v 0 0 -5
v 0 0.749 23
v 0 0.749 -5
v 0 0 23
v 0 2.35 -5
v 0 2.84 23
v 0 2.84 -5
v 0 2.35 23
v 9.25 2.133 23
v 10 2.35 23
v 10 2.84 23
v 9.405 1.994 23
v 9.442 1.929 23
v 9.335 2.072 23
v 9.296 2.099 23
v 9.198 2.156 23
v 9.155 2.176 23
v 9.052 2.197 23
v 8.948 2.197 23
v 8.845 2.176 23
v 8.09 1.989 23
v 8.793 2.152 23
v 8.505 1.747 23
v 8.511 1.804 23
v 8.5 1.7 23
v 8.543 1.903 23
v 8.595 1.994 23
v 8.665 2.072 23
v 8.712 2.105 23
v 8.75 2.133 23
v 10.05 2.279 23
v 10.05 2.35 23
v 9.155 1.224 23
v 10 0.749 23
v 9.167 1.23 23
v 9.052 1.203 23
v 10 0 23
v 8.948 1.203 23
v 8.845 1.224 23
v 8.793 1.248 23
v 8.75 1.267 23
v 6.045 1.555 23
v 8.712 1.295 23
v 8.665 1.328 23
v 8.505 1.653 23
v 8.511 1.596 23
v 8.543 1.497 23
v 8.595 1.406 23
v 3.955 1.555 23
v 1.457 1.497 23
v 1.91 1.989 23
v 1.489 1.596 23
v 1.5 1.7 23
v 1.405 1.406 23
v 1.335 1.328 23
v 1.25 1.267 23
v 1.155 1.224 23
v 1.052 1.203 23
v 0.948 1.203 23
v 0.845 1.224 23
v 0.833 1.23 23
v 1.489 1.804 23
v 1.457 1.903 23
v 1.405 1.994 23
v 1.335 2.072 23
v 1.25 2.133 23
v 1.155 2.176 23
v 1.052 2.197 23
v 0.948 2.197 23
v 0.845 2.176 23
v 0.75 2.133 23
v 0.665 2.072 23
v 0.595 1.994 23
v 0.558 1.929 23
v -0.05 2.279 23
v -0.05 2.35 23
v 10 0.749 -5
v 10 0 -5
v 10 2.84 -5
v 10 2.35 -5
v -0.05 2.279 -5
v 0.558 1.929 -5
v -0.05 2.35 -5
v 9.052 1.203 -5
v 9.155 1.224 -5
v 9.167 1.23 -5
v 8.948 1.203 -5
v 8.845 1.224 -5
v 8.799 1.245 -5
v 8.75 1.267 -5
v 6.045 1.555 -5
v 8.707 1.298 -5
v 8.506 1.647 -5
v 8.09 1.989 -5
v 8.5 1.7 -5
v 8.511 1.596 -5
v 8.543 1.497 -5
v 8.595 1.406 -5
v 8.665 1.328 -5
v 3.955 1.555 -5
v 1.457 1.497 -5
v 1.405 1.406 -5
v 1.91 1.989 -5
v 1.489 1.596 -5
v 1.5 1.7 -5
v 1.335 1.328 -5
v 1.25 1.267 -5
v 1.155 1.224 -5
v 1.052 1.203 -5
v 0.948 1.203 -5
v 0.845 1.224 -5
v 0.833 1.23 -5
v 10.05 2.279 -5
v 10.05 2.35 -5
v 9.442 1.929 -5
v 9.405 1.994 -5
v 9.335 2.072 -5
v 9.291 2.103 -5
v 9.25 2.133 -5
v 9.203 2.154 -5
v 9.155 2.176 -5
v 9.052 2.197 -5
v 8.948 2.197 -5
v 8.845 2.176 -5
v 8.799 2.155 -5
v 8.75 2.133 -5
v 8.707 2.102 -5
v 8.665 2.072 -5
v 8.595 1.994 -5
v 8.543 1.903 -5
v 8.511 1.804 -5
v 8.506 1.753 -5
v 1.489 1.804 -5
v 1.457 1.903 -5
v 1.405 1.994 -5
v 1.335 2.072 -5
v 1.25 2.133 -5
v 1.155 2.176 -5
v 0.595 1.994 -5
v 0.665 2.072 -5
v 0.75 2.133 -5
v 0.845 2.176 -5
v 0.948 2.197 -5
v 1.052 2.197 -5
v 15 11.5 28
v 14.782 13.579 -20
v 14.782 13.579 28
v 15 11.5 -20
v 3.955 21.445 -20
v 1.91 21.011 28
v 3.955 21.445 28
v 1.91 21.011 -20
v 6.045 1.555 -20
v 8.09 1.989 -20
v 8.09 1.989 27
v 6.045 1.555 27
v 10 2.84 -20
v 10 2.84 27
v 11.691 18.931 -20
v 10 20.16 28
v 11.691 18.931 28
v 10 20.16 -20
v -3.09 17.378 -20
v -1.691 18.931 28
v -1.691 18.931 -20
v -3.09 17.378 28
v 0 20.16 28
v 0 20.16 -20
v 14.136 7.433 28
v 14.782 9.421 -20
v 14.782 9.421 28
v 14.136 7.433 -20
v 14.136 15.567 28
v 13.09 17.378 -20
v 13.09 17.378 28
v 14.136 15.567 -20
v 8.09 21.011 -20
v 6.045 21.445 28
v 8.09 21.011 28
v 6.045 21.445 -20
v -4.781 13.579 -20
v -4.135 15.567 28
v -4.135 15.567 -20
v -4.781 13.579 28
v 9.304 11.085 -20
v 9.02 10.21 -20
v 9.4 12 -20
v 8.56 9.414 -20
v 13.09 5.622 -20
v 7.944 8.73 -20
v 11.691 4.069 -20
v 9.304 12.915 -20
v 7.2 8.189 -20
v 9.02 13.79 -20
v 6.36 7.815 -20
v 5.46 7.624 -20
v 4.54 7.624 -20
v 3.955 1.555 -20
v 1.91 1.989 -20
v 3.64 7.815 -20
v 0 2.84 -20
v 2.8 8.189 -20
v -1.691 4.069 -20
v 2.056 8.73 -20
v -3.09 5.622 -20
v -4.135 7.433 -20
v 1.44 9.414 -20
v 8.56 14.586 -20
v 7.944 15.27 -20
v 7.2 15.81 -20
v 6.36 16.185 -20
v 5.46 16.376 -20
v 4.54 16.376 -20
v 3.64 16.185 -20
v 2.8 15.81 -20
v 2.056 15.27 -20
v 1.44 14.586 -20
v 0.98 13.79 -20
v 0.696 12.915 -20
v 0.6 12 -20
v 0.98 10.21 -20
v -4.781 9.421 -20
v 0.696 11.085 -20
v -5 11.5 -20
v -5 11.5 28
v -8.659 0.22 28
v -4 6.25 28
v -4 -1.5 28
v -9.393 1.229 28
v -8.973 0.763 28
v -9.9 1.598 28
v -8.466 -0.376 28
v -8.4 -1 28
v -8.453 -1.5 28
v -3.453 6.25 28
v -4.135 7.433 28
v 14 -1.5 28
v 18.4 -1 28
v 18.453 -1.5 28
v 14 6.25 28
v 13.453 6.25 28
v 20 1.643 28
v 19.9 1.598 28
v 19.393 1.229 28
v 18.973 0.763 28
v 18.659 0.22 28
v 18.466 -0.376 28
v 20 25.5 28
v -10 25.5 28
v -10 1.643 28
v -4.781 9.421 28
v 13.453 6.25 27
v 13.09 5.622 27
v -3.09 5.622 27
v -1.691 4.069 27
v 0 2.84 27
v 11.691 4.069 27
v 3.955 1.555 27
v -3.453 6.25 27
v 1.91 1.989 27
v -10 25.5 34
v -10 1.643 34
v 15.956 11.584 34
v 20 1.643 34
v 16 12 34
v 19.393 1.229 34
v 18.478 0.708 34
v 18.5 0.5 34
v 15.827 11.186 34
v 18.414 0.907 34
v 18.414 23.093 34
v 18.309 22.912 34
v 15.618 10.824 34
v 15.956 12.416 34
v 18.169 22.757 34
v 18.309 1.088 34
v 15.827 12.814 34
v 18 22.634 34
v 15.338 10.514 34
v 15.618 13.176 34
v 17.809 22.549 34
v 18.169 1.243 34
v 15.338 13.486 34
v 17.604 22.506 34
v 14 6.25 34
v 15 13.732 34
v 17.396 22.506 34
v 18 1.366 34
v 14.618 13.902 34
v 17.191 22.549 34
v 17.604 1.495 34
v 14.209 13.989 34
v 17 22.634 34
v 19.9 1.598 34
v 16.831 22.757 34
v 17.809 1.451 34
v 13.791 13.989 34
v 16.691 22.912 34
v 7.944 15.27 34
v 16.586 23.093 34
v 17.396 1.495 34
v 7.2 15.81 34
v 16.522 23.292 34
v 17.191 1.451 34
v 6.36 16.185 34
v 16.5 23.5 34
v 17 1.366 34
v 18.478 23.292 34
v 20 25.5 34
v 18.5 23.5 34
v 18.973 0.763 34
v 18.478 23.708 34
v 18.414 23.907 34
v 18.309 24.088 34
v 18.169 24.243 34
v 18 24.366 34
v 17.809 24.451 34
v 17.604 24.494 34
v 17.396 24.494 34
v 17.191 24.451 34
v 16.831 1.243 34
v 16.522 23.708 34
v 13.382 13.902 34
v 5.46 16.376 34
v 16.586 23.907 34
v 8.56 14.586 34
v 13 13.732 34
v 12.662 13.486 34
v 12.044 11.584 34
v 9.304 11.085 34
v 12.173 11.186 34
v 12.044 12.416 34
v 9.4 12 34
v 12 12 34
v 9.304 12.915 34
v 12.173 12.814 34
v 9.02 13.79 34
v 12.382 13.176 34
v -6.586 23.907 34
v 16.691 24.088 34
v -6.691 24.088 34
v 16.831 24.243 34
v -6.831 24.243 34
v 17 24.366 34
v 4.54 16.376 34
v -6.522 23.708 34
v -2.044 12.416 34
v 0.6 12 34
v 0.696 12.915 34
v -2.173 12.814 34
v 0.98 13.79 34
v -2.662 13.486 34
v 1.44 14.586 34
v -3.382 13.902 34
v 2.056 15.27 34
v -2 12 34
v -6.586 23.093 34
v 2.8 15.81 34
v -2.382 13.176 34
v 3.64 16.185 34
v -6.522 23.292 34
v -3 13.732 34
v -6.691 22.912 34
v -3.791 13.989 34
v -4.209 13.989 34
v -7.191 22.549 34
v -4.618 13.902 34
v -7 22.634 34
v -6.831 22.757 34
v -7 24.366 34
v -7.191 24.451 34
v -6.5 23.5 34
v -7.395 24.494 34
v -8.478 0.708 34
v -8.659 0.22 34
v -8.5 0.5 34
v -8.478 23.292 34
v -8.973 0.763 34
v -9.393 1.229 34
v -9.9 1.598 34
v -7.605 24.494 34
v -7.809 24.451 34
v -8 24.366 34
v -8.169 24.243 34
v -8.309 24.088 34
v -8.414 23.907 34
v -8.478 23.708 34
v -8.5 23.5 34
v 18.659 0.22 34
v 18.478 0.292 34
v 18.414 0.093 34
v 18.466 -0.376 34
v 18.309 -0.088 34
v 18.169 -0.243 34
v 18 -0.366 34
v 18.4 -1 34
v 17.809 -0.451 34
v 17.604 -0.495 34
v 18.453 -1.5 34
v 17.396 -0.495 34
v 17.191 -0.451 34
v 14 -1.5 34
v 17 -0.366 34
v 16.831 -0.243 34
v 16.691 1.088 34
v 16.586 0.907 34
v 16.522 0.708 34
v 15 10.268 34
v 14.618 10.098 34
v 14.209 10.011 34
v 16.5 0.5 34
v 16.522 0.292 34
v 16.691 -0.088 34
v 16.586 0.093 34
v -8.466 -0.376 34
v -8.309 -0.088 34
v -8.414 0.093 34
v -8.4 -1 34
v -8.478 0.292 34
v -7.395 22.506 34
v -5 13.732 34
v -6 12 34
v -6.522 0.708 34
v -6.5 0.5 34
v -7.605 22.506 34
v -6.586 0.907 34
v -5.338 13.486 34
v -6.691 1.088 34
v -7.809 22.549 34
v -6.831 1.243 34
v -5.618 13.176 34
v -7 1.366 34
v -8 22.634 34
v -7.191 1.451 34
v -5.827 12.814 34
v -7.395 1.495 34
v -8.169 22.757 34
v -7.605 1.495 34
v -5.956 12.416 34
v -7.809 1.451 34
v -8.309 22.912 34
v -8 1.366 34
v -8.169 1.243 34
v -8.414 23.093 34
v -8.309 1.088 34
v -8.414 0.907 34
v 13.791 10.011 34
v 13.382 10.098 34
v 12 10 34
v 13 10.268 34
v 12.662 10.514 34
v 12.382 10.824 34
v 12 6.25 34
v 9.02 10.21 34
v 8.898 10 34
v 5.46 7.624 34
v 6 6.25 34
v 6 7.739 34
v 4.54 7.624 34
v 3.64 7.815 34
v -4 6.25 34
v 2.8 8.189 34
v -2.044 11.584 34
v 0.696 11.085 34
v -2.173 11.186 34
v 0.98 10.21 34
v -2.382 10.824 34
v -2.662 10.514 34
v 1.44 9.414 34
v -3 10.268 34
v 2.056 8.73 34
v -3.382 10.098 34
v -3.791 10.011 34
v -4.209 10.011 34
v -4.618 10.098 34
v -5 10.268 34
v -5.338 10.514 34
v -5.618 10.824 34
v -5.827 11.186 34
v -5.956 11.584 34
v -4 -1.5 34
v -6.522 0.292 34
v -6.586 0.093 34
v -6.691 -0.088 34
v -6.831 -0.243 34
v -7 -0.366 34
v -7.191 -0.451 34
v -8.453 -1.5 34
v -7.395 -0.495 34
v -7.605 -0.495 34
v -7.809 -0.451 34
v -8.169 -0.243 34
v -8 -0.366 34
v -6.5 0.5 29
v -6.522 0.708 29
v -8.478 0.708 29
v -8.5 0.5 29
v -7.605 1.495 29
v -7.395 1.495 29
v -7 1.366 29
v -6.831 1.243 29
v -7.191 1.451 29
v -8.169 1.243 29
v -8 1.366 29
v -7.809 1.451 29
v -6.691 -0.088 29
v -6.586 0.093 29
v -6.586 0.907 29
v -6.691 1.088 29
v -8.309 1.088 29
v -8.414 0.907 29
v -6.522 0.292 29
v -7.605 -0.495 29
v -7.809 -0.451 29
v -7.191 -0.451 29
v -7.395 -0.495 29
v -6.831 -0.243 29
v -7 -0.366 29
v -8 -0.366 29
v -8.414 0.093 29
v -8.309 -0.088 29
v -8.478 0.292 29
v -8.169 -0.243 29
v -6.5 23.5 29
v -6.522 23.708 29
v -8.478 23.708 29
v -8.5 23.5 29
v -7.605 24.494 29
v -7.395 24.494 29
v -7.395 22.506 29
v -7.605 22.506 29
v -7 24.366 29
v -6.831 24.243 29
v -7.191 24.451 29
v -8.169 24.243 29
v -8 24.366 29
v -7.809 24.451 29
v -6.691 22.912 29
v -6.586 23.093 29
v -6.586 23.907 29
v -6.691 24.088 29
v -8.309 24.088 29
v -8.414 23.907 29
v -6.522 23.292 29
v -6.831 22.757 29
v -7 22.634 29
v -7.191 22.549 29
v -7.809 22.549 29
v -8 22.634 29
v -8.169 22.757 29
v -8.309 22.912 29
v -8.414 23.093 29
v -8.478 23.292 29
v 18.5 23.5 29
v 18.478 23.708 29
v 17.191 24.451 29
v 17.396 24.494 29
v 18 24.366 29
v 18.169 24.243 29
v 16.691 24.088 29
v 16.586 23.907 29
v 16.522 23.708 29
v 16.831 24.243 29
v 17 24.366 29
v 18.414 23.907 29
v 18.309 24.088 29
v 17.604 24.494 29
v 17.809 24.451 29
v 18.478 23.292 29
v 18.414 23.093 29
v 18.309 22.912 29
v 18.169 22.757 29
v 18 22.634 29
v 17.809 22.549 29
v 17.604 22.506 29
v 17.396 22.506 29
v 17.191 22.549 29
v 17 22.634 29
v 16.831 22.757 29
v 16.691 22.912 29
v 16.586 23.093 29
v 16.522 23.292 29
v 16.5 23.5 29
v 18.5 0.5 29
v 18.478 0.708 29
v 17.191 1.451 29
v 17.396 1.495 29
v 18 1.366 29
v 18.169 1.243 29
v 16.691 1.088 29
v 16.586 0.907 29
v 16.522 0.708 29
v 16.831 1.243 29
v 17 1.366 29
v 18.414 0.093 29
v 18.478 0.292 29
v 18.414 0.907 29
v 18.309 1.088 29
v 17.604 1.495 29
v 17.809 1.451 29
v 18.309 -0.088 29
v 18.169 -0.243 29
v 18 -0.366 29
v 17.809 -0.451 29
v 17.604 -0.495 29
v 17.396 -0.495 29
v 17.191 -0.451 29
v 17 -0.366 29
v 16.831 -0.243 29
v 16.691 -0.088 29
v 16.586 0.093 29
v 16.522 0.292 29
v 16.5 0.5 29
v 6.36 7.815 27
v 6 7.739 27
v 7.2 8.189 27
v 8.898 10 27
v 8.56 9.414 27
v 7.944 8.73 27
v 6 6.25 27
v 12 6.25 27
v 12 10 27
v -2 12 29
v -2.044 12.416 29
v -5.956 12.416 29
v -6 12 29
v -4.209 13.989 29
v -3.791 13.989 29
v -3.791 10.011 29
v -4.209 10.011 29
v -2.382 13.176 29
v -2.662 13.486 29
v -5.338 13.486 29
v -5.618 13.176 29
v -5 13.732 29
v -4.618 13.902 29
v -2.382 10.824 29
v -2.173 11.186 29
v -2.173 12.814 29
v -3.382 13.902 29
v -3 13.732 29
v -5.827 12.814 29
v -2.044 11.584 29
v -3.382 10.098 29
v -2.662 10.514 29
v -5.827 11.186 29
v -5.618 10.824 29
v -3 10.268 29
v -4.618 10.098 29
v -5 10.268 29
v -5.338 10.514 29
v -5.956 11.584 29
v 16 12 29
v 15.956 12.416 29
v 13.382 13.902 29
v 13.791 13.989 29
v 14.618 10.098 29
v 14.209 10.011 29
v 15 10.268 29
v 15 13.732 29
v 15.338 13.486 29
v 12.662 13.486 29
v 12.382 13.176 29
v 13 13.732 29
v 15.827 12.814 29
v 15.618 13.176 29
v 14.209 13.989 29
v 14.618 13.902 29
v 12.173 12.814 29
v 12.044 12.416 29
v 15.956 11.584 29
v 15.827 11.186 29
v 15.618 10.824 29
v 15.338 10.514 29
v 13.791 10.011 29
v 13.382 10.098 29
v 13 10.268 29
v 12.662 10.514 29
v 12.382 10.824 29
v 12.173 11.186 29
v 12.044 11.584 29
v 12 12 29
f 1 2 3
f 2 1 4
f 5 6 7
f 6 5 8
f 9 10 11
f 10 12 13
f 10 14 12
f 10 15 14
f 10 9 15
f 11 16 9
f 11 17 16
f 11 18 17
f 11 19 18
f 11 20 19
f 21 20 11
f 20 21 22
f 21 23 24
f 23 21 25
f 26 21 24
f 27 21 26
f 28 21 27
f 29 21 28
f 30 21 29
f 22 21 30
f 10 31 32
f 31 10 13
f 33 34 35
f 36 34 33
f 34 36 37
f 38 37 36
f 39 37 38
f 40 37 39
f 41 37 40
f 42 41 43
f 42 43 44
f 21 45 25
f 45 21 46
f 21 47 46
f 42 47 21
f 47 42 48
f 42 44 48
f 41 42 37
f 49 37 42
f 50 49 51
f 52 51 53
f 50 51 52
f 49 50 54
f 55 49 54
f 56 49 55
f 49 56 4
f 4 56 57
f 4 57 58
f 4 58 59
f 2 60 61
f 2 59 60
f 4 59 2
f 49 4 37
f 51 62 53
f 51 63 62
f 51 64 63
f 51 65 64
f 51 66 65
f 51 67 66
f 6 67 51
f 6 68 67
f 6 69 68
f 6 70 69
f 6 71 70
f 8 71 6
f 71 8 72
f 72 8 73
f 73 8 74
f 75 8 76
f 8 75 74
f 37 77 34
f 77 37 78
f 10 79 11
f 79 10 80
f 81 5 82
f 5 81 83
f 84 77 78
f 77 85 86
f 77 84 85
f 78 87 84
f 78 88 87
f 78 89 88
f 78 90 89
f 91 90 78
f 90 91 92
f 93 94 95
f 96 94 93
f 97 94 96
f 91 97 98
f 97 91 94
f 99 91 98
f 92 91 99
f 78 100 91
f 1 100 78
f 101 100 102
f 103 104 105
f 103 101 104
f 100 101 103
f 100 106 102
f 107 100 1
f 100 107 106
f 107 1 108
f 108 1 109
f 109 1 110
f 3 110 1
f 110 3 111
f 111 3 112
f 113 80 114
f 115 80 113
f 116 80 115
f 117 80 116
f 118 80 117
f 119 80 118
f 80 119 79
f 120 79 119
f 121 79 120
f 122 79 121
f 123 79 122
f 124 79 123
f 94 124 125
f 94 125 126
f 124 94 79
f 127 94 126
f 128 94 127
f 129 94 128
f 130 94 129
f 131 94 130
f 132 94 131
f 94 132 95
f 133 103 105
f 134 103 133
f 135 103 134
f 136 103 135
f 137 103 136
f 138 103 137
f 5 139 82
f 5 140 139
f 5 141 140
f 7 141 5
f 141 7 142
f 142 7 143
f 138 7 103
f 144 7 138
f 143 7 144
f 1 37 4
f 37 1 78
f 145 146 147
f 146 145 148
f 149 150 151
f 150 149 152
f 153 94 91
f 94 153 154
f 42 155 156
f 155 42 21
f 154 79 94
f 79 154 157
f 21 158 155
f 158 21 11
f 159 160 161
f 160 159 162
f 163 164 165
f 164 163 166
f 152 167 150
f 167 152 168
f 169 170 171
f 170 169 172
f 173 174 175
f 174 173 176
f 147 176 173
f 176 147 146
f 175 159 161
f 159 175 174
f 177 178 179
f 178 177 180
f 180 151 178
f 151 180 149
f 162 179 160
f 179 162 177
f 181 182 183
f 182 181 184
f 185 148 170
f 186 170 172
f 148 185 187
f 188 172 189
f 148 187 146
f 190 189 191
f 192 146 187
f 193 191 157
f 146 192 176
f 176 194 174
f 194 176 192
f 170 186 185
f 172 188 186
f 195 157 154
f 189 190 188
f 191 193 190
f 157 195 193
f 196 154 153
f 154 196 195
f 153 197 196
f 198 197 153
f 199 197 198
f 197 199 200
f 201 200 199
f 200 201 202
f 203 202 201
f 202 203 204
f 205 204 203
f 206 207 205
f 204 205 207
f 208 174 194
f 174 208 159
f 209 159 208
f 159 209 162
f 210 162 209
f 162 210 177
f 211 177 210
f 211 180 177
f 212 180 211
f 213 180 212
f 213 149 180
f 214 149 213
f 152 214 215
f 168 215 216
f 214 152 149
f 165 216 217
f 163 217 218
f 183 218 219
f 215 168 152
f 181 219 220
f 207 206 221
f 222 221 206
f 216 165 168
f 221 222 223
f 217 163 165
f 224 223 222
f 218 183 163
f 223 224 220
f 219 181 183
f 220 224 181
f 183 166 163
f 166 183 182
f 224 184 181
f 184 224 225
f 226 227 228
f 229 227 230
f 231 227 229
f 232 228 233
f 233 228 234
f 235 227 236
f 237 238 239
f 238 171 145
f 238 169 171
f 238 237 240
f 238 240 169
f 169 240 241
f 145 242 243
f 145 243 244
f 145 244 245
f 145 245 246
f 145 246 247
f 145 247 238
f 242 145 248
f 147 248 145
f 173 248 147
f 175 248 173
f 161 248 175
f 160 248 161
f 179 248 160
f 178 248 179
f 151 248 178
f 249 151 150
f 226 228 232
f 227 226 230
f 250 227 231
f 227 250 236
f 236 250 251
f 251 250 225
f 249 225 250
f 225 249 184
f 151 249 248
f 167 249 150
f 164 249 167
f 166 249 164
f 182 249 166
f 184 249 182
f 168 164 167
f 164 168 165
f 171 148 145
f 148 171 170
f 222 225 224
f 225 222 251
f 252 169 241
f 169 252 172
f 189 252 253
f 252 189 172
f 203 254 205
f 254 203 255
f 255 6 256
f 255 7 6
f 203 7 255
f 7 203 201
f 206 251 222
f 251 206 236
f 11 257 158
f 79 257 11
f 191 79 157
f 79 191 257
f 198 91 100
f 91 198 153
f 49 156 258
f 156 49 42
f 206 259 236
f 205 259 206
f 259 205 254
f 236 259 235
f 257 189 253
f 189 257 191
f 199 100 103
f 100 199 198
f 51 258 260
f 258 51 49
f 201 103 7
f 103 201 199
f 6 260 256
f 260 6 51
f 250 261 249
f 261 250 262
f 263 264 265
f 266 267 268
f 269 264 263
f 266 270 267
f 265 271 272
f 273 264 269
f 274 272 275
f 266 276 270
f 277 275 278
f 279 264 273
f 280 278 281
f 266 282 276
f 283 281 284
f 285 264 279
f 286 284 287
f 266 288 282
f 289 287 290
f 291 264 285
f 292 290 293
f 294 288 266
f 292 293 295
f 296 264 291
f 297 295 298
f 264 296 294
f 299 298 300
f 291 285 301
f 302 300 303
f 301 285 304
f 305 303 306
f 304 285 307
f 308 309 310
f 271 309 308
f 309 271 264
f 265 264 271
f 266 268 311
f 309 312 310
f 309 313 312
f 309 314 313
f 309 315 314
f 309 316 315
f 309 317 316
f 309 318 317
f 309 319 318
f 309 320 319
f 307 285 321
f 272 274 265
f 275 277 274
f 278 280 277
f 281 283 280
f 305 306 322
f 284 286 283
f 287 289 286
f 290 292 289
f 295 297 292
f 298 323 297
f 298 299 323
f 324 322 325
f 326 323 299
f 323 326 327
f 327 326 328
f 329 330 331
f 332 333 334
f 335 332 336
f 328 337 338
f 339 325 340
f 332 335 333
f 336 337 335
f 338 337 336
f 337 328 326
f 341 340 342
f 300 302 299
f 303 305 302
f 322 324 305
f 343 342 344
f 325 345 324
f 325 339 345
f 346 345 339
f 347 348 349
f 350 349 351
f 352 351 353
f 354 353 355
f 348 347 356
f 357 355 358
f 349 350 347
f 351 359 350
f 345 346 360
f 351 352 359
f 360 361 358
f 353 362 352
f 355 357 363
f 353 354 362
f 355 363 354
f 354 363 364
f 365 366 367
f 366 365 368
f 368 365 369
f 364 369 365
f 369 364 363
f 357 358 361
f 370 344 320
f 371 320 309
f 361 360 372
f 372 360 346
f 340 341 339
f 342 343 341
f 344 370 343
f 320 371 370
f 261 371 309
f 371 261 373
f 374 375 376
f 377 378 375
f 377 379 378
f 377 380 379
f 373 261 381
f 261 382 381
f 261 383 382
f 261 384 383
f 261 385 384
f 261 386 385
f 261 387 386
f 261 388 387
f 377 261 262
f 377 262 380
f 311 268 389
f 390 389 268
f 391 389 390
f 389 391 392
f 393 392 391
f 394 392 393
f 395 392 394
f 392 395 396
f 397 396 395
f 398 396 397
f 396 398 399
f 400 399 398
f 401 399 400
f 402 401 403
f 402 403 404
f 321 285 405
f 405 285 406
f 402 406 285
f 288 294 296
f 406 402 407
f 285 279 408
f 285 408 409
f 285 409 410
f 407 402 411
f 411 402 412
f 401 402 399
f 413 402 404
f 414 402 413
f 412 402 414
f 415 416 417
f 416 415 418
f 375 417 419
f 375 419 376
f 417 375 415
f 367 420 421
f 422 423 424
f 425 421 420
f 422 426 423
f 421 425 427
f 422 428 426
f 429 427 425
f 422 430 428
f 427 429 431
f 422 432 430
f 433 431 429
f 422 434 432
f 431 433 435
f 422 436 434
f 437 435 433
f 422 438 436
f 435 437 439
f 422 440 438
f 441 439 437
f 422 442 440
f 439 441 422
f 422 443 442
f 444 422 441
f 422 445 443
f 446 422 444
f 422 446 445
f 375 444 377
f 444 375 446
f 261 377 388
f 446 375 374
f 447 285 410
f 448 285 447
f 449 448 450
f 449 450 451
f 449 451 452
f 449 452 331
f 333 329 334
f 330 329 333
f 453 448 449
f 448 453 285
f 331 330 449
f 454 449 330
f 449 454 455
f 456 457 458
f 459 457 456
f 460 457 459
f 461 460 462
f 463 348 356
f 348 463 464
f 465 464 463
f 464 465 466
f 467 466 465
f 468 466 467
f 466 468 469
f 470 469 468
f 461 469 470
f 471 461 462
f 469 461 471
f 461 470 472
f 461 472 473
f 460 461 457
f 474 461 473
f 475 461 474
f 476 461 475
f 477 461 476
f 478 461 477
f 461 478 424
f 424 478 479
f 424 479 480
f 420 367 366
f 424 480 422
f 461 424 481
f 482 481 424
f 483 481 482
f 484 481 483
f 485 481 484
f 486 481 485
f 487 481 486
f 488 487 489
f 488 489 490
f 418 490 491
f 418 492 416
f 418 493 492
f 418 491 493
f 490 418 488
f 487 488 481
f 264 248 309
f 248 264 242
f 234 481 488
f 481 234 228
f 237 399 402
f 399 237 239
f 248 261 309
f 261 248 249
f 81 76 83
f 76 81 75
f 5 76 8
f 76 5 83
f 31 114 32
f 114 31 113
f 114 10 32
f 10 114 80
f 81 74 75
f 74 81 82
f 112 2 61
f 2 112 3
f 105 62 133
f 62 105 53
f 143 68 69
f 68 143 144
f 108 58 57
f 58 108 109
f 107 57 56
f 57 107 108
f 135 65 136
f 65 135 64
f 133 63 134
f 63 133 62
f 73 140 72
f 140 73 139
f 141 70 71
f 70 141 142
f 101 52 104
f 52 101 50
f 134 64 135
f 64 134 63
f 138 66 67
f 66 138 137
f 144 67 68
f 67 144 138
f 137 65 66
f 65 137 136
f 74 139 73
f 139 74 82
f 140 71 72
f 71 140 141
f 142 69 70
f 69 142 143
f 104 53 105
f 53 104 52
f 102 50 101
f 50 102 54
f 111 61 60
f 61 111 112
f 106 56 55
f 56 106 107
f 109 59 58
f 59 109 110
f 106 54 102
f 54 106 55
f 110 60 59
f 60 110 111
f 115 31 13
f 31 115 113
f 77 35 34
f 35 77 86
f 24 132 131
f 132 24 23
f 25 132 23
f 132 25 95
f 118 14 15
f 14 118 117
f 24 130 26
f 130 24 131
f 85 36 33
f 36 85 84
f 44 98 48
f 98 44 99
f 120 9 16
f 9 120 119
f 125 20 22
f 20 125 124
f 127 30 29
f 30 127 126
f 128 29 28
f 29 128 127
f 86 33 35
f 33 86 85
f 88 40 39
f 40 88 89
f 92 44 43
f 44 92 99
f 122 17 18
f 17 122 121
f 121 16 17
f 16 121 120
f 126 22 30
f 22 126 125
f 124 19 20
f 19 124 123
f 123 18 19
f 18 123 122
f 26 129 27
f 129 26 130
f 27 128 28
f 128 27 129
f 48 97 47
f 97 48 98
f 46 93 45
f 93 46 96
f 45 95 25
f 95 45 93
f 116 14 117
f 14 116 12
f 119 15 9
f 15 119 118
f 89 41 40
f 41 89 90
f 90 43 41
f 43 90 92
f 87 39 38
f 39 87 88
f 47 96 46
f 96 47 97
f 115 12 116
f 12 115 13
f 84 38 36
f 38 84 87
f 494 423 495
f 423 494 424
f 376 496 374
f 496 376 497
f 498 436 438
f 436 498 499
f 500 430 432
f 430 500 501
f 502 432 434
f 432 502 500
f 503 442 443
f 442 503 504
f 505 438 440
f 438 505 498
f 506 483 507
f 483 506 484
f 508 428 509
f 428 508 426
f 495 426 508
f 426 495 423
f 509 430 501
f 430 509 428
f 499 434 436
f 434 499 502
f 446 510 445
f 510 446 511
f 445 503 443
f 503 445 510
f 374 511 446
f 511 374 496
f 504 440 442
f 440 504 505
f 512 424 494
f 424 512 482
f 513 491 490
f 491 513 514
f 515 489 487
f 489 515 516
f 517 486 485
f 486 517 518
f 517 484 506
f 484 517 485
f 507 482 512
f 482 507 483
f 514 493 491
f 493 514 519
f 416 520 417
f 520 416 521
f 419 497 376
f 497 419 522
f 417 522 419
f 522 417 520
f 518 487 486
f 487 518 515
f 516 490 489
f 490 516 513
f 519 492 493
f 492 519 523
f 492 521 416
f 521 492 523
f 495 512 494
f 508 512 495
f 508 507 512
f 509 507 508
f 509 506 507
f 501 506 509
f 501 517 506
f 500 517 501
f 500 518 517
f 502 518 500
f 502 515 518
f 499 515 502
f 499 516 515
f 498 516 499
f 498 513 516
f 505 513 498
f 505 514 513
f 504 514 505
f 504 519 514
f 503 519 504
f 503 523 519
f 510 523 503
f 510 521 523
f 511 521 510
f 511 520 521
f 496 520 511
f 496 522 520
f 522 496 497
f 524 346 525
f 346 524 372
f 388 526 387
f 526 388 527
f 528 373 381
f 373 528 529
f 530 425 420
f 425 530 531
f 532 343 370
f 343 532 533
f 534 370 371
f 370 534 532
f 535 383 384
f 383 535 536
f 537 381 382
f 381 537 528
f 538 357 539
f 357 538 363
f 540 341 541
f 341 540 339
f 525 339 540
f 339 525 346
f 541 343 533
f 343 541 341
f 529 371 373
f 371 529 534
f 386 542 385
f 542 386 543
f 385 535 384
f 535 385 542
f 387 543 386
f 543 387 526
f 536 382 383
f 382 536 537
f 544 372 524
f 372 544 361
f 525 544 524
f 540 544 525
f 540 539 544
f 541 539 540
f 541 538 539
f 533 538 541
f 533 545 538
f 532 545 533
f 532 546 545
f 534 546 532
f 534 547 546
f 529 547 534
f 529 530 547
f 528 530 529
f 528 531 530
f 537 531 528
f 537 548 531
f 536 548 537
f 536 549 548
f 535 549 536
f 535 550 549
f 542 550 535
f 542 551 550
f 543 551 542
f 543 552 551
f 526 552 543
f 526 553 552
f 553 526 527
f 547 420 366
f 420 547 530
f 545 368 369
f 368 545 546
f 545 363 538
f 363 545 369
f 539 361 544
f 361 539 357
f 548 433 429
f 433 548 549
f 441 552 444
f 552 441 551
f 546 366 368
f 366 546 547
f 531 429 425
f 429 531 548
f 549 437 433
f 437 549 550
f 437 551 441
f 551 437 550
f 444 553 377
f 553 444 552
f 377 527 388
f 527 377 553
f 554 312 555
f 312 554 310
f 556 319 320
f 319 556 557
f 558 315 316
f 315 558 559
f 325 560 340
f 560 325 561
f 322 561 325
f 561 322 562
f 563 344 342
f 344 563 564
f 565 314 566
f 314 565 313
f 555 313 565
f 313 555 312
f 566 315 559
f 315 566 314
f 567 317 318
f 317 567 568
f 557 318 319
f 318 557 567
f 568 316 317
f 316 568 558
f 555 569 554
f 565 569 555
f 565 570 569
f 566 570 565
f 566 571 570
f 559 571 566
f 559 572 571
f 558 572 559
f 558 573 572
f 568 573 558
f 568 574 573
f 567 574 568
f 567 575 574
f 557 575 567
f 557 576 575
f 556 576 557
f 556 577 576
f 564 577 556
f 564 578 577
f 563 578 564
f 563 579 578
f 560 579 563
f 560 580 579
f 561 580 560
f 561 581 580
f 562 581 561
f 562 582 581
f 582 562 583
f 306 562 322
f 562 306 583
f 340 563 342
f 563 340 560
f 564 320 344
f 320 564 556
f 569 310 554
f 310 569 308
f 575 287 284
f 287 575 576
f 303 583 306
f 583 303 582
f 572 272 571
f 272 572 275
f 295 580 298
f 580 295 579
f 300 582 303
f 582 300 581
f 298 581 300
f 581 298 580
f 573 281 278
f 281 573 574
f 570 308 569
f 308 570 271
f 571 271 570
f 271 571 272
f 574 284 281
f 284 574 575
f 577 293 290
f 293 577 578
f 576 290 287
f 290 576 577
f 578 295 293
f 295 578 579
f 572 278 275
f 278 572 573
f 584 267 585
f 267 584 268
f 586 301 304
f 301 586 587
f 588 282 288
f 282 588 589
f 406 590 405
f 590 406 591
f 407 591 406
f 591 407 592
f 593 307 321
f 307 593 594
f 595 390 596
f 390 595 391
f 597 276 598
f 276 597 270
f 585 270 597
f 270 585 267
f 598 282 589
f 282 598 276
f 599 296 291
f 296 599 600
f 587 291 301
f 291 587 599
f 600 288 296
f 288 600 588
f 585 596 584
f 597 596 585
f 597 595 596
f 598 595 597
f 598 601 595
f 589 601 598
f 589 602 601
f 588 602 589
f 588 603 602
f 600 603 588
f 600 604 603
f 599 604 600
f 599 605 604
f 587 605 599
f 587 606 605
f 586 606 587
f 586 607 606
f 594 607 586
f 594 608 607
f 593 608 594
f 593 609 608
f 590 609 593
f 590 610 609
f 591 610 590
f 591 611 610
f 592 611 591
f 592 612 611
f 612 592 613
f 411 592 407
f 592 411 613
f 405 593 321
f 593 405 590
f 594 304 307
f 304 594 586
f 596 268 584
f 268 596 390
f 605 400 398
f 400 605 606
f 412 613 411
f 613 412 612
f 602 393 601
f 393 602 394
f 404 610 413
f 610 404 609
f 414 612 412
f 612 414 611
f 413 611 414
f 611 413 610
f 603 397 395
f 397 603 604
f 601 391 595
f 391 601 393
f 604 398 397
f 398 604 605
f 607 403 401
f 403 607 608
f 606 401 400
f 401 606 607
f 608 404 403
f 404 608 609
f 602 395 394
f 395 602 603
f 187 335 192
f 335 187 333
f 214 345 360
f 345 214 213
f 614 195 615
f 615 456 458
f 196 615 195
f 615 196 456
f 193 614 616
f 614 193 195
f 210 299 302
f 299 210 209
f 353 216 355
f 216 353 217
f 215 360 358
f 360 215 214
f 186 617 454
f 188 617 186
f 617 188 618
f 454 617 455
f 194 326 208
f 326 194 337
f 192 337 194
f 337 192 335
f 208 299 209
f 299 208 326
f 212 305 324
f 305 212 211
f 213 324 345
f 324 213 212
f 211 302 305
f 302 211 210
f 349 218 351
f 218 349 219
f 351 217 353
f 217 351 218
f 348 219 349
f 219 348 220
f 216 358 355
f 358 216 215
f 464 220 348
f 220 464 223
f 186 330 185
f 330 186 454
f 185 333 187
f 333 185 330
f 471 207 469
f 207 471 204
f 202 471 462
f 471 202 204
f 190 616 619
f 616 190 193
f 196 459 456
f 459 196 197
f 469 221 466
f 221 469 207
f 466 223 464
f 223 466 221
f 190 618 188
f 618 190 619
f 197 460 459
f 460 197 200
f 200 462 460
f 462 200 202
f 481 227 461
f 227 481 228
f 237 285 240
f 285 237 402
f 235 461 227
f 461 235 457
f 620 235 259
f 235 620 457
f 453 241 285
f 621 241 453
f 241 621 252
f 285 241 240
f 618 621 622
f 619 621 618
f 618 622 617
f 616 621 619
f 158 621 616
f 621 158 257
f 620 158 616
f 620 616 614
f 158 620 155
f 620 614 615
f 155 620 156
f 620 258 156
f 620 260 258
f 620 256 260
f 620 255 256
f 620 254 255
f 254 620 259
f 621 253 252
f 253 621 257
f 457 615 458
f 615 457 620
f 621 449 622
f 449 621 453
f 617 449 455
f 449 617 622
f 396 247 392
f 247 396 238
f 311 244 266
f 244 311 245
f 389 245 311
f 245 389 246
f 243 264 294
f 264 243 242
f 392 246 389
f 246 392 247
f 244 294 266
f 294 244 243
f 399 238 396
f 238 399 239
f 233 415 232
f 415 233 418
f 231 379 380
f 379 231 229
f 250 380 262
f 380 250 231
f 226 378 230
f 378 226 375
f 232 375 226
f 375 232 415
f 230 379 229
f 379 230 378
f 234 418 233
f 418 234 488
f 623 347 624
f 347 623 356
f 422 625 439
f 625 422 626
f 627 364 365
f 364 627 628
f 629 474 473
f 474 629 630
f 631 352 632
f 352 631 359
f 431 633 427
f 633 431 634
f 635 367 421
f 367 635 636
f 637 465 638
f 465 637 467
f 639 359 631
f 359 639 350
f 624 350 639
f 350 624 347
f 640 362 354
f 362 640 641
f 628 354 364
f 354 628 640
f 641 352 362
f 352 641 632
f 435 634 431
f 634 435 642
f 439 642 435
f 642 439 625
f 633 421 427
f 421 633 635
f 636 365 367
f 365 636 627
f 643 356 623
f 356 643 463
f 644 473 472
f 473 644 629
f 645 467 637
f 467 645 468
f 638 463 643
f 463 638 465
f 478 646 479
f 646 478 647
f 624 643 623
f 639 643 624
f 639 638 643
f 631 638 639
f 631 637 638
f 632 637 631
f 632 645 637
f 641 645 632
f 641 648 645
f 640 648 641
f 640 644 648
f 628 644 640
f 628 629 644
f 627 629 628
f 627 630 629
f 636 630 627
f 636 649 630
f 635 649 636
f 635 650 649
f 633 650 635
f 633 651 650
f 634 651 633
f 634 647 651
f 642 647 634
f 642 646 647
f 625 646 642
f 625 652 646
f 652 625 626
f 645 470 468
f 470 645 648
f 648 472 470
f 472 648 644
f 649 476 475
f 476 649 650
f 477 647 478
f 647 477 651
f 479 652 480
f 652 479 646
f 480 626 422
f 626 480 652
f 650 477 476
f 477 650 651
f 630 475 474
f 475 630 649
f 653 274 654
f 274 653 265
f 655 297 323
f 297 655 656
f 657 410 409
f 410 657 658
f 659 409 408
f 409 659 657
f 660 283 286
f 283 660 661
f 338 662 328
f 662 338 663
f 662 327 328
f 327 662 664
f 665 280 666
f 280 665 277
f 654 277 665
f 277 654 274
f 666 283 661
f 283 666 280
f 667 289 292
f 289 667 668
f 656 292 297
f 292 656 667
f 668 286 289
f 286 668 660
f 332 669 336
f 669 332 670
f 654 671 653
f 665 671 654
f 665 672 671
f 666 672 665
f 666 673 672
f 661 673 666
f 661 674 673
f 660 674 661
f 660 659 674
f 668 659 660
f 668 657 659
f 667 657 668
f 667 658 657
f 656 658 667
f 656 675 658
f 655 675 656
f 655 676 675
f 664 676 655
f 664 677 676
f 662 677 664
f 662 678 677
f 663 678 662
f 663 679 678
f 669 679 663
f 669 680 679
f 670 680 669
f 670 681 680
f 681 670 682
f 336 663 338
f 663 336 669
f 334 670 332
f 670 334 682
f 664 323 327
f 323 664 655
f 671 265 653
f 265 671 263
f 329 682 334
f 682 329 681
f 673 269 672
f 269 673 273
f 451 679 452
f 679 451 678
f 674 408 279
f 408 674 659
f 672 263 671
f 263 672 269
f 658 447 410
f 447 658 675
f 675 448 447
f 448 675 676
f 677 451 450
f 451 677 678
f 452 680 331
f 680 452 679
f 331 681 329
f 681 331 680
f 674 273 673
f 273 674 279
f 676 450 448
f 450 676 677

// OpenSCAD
// screw used 2mm
$fn=30;
weight=5;
length=10;
height=48;
difference(){
    union(){
        translate([0,0,-5])cube([length,weight,height-20]);
        translate([5,11.5,-20])cylinder(r=length,h=height);
        translate([-10,-1.5,28])cube([length*3,weight+22,6]);
        translate([0.2,2.1,9])cube([0.5,0.5,height-20],center=true);
        translate([9.8,2.1,9])cube([0.5,0.5,height-20],center=true);
    }
               
    translate([0,1.5,0])cylinder(r=1.3,h=height*10,center=true,$fn=3);
    translate([1,1.7,0])cylinder(r=0.5,h=height*10,center=true);
    rotate([0,180,0])translate([-10,1.5,0])cylinder(r=1.3,h=height*10,center=true,$fn=3);
    rotate([0,180,0])translate([-9,1.7,0])cylinder(r=0.5,h=height*10,center=true);
    translate([-7.5,0.5,53])cylinder(r=1,h=height,center=true);
    translate([-7.5,23.5,53])cylinder(r=1,h=height,center=true);
    translate([17.5,23.5,53])cylinder(r=1,h=height,center=true);
    translate([17.5,0.5,53])cylinder(r=1,h=height,center=true);
    translate([5,12,0])cylinder(r=4*1.1,h=height*10,center=true);
    translate([5,2,32])cube([18,length-1.5,10],center=true);
    translate([9,5,32])cube([6,length,10],center=true);
    translate([21.4,-1,31])cylinder(r=3,h=length,center=true);
    translate([-11.4,-1,31])cylinder(r=3,h=length,center=true);
    translate([-4,12,53])cylinder(r=2,h=height,center=true);
    translate([14,12,53])cylinder(r=2,h=height,center=true);
}
